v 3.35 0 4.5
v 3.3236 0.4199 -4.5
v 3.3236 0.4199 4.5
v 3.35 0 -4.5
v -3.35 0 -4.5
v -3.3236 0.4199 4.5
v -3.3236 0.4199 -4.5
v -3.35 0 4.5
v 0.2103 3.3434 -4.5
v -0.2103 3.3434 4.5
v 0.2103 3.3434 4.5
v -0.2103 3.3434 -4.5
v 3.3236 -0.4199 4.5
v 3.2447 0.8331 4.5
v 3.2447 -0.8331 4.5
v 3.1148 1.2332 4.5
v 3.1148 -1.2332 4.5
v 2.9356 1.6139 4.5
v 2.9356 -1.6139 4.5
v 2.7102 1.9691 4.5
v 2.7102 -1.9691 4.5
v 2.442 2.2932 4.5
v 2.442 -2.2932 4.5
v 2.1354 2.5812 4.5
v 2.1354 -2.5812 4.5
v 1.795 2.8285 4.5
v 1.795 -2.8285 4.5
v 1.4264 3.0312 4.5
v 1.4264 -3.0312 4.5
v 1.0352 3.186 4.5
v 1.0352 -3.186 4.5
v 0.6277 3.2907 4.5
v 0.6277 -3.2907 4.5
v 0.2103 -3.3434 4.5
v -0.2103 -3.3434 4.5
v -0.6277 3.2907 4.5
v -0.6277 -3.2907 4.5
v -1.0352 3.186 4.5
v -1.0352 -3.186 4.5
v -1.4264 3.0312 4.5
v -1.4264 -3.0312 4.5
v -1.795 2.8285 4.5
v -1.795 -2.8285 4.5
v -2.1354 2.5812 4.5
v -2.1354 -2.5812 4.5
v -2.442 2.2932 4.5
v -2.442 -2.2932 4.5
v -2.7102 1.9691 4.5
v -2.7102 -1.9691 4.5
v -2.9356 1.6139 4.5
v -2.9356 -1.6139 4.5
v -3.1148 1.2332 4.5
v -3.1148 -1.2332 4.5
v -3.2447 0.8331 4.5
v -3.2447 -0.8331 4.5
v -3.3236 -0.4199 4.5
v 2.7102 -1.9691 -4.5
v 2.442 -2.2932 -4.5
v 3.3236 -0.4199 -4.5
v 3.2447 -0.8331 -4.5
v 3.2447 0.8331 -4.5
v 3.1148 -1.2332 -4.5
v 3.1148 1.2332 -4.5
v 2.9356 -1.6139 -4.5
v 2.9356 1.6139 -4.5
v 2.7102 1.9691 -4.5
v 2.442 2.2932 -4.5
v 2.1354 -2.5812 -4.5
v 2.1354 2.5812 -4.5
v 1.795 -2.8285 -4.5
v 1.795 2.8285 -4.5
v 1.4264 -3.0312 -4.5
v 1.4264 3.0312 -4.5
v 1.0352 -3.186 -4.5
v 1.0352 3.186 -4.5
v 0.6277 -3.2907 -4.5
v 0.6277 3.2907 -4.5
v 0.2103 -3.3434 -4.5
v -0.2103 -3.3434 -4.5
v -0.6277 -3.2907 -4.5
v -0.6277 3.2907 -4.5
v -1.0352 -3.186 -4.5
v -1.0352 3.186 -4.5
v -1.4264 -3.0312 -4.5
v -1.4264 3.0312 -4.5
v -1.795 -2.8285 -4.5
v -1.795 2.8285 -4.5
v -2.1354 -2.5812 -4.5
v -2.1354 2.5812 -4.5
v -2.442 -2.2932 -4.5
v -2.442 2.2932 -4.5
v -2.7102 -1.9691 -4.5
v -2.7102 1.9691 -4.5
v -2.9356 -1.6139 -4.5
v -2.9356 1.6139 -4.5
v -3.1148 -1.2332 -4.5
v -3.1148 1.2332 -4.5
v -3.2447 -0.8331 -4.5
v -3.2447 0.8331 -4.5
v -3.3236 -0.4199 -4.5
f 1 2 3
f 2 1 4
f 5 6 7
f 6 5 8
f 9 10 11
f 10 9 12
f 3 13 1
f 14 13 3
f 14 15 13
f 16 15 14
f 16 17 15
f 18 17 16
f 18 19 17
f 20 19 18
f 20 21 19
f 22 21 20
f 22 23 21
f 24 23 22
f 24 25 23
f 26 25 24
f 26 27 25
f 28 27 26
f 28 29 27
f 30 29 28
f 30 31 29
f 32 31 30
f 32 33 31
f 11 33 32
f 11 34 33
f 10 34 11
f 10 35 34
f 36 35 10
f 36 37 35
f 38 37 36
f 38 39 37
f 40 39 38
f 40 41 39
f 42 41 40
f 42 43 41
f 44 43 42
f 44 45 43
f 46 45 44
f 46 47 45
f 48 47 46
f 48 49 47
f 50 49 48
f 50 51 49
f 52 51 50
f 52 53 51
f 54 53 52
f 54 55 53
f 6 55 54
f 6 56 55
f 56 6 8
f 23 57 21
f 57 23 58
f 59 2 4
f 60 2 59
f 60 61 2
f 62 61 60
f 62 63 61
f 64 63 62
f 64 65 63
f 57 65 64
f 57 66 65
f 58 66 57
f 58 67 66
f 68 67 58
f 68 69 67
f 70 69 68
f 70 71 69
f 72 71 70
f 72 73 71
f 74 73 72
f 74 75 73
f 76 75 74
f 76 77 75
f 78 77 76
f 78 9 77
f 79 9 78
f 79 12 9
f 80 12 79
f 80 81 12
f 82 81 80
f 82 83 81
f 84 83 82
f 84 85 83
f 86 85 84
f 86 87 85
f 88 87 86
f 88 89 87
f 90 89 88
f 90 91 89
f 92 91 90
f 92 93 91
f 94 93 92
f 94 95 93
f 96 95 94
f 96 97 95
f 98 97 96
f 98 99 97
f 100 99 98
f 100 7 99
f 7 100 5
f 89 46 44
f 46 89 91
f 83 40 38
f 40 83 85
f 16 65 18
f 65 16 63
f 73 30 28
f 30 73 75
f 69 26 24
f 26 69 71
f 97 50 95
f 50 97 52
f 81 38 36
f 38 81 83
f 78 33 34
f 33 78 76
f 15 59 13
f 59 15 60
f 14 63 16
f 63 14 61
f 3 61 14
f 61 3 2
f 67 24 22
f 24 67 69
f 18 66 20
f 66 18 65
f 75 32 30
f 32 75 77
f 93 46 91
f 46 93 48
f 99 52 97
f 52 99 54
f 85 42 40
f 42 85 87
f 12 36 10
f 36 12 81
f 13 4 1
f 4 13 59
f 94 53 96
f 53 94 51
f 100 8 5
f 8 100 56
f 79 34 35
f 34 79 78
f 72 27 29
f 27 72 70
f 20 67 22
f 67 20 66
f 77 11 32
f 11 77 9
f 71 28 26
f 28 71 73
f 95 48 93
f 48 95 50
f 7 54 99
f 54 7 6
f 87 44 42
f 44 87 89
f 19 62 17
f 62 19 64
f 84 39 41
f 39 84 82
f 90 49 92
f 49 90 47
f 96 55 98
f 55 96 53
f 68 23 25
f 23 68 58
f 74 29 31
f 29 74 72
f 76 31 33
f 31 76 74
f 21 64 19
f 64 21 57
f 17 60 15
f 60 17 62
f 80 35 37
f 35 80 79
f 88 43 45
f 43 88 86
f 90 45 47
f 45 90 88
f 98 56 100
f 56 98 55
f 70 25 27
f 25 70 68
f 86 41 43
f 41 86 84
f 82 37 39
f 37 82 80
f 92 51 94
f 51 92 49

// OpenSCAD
$fn = 50;


difference() {
	union() {
		translate(v = [0, 0, -4.5000000000]) {
			cylinder(h = 9, r = 3.3500000000);
		}
	}
	union() {
		translate(v = [0, 0, -100.0000000000]) {
			cylinder(h = 200, r = 0);
		}
	}
}
